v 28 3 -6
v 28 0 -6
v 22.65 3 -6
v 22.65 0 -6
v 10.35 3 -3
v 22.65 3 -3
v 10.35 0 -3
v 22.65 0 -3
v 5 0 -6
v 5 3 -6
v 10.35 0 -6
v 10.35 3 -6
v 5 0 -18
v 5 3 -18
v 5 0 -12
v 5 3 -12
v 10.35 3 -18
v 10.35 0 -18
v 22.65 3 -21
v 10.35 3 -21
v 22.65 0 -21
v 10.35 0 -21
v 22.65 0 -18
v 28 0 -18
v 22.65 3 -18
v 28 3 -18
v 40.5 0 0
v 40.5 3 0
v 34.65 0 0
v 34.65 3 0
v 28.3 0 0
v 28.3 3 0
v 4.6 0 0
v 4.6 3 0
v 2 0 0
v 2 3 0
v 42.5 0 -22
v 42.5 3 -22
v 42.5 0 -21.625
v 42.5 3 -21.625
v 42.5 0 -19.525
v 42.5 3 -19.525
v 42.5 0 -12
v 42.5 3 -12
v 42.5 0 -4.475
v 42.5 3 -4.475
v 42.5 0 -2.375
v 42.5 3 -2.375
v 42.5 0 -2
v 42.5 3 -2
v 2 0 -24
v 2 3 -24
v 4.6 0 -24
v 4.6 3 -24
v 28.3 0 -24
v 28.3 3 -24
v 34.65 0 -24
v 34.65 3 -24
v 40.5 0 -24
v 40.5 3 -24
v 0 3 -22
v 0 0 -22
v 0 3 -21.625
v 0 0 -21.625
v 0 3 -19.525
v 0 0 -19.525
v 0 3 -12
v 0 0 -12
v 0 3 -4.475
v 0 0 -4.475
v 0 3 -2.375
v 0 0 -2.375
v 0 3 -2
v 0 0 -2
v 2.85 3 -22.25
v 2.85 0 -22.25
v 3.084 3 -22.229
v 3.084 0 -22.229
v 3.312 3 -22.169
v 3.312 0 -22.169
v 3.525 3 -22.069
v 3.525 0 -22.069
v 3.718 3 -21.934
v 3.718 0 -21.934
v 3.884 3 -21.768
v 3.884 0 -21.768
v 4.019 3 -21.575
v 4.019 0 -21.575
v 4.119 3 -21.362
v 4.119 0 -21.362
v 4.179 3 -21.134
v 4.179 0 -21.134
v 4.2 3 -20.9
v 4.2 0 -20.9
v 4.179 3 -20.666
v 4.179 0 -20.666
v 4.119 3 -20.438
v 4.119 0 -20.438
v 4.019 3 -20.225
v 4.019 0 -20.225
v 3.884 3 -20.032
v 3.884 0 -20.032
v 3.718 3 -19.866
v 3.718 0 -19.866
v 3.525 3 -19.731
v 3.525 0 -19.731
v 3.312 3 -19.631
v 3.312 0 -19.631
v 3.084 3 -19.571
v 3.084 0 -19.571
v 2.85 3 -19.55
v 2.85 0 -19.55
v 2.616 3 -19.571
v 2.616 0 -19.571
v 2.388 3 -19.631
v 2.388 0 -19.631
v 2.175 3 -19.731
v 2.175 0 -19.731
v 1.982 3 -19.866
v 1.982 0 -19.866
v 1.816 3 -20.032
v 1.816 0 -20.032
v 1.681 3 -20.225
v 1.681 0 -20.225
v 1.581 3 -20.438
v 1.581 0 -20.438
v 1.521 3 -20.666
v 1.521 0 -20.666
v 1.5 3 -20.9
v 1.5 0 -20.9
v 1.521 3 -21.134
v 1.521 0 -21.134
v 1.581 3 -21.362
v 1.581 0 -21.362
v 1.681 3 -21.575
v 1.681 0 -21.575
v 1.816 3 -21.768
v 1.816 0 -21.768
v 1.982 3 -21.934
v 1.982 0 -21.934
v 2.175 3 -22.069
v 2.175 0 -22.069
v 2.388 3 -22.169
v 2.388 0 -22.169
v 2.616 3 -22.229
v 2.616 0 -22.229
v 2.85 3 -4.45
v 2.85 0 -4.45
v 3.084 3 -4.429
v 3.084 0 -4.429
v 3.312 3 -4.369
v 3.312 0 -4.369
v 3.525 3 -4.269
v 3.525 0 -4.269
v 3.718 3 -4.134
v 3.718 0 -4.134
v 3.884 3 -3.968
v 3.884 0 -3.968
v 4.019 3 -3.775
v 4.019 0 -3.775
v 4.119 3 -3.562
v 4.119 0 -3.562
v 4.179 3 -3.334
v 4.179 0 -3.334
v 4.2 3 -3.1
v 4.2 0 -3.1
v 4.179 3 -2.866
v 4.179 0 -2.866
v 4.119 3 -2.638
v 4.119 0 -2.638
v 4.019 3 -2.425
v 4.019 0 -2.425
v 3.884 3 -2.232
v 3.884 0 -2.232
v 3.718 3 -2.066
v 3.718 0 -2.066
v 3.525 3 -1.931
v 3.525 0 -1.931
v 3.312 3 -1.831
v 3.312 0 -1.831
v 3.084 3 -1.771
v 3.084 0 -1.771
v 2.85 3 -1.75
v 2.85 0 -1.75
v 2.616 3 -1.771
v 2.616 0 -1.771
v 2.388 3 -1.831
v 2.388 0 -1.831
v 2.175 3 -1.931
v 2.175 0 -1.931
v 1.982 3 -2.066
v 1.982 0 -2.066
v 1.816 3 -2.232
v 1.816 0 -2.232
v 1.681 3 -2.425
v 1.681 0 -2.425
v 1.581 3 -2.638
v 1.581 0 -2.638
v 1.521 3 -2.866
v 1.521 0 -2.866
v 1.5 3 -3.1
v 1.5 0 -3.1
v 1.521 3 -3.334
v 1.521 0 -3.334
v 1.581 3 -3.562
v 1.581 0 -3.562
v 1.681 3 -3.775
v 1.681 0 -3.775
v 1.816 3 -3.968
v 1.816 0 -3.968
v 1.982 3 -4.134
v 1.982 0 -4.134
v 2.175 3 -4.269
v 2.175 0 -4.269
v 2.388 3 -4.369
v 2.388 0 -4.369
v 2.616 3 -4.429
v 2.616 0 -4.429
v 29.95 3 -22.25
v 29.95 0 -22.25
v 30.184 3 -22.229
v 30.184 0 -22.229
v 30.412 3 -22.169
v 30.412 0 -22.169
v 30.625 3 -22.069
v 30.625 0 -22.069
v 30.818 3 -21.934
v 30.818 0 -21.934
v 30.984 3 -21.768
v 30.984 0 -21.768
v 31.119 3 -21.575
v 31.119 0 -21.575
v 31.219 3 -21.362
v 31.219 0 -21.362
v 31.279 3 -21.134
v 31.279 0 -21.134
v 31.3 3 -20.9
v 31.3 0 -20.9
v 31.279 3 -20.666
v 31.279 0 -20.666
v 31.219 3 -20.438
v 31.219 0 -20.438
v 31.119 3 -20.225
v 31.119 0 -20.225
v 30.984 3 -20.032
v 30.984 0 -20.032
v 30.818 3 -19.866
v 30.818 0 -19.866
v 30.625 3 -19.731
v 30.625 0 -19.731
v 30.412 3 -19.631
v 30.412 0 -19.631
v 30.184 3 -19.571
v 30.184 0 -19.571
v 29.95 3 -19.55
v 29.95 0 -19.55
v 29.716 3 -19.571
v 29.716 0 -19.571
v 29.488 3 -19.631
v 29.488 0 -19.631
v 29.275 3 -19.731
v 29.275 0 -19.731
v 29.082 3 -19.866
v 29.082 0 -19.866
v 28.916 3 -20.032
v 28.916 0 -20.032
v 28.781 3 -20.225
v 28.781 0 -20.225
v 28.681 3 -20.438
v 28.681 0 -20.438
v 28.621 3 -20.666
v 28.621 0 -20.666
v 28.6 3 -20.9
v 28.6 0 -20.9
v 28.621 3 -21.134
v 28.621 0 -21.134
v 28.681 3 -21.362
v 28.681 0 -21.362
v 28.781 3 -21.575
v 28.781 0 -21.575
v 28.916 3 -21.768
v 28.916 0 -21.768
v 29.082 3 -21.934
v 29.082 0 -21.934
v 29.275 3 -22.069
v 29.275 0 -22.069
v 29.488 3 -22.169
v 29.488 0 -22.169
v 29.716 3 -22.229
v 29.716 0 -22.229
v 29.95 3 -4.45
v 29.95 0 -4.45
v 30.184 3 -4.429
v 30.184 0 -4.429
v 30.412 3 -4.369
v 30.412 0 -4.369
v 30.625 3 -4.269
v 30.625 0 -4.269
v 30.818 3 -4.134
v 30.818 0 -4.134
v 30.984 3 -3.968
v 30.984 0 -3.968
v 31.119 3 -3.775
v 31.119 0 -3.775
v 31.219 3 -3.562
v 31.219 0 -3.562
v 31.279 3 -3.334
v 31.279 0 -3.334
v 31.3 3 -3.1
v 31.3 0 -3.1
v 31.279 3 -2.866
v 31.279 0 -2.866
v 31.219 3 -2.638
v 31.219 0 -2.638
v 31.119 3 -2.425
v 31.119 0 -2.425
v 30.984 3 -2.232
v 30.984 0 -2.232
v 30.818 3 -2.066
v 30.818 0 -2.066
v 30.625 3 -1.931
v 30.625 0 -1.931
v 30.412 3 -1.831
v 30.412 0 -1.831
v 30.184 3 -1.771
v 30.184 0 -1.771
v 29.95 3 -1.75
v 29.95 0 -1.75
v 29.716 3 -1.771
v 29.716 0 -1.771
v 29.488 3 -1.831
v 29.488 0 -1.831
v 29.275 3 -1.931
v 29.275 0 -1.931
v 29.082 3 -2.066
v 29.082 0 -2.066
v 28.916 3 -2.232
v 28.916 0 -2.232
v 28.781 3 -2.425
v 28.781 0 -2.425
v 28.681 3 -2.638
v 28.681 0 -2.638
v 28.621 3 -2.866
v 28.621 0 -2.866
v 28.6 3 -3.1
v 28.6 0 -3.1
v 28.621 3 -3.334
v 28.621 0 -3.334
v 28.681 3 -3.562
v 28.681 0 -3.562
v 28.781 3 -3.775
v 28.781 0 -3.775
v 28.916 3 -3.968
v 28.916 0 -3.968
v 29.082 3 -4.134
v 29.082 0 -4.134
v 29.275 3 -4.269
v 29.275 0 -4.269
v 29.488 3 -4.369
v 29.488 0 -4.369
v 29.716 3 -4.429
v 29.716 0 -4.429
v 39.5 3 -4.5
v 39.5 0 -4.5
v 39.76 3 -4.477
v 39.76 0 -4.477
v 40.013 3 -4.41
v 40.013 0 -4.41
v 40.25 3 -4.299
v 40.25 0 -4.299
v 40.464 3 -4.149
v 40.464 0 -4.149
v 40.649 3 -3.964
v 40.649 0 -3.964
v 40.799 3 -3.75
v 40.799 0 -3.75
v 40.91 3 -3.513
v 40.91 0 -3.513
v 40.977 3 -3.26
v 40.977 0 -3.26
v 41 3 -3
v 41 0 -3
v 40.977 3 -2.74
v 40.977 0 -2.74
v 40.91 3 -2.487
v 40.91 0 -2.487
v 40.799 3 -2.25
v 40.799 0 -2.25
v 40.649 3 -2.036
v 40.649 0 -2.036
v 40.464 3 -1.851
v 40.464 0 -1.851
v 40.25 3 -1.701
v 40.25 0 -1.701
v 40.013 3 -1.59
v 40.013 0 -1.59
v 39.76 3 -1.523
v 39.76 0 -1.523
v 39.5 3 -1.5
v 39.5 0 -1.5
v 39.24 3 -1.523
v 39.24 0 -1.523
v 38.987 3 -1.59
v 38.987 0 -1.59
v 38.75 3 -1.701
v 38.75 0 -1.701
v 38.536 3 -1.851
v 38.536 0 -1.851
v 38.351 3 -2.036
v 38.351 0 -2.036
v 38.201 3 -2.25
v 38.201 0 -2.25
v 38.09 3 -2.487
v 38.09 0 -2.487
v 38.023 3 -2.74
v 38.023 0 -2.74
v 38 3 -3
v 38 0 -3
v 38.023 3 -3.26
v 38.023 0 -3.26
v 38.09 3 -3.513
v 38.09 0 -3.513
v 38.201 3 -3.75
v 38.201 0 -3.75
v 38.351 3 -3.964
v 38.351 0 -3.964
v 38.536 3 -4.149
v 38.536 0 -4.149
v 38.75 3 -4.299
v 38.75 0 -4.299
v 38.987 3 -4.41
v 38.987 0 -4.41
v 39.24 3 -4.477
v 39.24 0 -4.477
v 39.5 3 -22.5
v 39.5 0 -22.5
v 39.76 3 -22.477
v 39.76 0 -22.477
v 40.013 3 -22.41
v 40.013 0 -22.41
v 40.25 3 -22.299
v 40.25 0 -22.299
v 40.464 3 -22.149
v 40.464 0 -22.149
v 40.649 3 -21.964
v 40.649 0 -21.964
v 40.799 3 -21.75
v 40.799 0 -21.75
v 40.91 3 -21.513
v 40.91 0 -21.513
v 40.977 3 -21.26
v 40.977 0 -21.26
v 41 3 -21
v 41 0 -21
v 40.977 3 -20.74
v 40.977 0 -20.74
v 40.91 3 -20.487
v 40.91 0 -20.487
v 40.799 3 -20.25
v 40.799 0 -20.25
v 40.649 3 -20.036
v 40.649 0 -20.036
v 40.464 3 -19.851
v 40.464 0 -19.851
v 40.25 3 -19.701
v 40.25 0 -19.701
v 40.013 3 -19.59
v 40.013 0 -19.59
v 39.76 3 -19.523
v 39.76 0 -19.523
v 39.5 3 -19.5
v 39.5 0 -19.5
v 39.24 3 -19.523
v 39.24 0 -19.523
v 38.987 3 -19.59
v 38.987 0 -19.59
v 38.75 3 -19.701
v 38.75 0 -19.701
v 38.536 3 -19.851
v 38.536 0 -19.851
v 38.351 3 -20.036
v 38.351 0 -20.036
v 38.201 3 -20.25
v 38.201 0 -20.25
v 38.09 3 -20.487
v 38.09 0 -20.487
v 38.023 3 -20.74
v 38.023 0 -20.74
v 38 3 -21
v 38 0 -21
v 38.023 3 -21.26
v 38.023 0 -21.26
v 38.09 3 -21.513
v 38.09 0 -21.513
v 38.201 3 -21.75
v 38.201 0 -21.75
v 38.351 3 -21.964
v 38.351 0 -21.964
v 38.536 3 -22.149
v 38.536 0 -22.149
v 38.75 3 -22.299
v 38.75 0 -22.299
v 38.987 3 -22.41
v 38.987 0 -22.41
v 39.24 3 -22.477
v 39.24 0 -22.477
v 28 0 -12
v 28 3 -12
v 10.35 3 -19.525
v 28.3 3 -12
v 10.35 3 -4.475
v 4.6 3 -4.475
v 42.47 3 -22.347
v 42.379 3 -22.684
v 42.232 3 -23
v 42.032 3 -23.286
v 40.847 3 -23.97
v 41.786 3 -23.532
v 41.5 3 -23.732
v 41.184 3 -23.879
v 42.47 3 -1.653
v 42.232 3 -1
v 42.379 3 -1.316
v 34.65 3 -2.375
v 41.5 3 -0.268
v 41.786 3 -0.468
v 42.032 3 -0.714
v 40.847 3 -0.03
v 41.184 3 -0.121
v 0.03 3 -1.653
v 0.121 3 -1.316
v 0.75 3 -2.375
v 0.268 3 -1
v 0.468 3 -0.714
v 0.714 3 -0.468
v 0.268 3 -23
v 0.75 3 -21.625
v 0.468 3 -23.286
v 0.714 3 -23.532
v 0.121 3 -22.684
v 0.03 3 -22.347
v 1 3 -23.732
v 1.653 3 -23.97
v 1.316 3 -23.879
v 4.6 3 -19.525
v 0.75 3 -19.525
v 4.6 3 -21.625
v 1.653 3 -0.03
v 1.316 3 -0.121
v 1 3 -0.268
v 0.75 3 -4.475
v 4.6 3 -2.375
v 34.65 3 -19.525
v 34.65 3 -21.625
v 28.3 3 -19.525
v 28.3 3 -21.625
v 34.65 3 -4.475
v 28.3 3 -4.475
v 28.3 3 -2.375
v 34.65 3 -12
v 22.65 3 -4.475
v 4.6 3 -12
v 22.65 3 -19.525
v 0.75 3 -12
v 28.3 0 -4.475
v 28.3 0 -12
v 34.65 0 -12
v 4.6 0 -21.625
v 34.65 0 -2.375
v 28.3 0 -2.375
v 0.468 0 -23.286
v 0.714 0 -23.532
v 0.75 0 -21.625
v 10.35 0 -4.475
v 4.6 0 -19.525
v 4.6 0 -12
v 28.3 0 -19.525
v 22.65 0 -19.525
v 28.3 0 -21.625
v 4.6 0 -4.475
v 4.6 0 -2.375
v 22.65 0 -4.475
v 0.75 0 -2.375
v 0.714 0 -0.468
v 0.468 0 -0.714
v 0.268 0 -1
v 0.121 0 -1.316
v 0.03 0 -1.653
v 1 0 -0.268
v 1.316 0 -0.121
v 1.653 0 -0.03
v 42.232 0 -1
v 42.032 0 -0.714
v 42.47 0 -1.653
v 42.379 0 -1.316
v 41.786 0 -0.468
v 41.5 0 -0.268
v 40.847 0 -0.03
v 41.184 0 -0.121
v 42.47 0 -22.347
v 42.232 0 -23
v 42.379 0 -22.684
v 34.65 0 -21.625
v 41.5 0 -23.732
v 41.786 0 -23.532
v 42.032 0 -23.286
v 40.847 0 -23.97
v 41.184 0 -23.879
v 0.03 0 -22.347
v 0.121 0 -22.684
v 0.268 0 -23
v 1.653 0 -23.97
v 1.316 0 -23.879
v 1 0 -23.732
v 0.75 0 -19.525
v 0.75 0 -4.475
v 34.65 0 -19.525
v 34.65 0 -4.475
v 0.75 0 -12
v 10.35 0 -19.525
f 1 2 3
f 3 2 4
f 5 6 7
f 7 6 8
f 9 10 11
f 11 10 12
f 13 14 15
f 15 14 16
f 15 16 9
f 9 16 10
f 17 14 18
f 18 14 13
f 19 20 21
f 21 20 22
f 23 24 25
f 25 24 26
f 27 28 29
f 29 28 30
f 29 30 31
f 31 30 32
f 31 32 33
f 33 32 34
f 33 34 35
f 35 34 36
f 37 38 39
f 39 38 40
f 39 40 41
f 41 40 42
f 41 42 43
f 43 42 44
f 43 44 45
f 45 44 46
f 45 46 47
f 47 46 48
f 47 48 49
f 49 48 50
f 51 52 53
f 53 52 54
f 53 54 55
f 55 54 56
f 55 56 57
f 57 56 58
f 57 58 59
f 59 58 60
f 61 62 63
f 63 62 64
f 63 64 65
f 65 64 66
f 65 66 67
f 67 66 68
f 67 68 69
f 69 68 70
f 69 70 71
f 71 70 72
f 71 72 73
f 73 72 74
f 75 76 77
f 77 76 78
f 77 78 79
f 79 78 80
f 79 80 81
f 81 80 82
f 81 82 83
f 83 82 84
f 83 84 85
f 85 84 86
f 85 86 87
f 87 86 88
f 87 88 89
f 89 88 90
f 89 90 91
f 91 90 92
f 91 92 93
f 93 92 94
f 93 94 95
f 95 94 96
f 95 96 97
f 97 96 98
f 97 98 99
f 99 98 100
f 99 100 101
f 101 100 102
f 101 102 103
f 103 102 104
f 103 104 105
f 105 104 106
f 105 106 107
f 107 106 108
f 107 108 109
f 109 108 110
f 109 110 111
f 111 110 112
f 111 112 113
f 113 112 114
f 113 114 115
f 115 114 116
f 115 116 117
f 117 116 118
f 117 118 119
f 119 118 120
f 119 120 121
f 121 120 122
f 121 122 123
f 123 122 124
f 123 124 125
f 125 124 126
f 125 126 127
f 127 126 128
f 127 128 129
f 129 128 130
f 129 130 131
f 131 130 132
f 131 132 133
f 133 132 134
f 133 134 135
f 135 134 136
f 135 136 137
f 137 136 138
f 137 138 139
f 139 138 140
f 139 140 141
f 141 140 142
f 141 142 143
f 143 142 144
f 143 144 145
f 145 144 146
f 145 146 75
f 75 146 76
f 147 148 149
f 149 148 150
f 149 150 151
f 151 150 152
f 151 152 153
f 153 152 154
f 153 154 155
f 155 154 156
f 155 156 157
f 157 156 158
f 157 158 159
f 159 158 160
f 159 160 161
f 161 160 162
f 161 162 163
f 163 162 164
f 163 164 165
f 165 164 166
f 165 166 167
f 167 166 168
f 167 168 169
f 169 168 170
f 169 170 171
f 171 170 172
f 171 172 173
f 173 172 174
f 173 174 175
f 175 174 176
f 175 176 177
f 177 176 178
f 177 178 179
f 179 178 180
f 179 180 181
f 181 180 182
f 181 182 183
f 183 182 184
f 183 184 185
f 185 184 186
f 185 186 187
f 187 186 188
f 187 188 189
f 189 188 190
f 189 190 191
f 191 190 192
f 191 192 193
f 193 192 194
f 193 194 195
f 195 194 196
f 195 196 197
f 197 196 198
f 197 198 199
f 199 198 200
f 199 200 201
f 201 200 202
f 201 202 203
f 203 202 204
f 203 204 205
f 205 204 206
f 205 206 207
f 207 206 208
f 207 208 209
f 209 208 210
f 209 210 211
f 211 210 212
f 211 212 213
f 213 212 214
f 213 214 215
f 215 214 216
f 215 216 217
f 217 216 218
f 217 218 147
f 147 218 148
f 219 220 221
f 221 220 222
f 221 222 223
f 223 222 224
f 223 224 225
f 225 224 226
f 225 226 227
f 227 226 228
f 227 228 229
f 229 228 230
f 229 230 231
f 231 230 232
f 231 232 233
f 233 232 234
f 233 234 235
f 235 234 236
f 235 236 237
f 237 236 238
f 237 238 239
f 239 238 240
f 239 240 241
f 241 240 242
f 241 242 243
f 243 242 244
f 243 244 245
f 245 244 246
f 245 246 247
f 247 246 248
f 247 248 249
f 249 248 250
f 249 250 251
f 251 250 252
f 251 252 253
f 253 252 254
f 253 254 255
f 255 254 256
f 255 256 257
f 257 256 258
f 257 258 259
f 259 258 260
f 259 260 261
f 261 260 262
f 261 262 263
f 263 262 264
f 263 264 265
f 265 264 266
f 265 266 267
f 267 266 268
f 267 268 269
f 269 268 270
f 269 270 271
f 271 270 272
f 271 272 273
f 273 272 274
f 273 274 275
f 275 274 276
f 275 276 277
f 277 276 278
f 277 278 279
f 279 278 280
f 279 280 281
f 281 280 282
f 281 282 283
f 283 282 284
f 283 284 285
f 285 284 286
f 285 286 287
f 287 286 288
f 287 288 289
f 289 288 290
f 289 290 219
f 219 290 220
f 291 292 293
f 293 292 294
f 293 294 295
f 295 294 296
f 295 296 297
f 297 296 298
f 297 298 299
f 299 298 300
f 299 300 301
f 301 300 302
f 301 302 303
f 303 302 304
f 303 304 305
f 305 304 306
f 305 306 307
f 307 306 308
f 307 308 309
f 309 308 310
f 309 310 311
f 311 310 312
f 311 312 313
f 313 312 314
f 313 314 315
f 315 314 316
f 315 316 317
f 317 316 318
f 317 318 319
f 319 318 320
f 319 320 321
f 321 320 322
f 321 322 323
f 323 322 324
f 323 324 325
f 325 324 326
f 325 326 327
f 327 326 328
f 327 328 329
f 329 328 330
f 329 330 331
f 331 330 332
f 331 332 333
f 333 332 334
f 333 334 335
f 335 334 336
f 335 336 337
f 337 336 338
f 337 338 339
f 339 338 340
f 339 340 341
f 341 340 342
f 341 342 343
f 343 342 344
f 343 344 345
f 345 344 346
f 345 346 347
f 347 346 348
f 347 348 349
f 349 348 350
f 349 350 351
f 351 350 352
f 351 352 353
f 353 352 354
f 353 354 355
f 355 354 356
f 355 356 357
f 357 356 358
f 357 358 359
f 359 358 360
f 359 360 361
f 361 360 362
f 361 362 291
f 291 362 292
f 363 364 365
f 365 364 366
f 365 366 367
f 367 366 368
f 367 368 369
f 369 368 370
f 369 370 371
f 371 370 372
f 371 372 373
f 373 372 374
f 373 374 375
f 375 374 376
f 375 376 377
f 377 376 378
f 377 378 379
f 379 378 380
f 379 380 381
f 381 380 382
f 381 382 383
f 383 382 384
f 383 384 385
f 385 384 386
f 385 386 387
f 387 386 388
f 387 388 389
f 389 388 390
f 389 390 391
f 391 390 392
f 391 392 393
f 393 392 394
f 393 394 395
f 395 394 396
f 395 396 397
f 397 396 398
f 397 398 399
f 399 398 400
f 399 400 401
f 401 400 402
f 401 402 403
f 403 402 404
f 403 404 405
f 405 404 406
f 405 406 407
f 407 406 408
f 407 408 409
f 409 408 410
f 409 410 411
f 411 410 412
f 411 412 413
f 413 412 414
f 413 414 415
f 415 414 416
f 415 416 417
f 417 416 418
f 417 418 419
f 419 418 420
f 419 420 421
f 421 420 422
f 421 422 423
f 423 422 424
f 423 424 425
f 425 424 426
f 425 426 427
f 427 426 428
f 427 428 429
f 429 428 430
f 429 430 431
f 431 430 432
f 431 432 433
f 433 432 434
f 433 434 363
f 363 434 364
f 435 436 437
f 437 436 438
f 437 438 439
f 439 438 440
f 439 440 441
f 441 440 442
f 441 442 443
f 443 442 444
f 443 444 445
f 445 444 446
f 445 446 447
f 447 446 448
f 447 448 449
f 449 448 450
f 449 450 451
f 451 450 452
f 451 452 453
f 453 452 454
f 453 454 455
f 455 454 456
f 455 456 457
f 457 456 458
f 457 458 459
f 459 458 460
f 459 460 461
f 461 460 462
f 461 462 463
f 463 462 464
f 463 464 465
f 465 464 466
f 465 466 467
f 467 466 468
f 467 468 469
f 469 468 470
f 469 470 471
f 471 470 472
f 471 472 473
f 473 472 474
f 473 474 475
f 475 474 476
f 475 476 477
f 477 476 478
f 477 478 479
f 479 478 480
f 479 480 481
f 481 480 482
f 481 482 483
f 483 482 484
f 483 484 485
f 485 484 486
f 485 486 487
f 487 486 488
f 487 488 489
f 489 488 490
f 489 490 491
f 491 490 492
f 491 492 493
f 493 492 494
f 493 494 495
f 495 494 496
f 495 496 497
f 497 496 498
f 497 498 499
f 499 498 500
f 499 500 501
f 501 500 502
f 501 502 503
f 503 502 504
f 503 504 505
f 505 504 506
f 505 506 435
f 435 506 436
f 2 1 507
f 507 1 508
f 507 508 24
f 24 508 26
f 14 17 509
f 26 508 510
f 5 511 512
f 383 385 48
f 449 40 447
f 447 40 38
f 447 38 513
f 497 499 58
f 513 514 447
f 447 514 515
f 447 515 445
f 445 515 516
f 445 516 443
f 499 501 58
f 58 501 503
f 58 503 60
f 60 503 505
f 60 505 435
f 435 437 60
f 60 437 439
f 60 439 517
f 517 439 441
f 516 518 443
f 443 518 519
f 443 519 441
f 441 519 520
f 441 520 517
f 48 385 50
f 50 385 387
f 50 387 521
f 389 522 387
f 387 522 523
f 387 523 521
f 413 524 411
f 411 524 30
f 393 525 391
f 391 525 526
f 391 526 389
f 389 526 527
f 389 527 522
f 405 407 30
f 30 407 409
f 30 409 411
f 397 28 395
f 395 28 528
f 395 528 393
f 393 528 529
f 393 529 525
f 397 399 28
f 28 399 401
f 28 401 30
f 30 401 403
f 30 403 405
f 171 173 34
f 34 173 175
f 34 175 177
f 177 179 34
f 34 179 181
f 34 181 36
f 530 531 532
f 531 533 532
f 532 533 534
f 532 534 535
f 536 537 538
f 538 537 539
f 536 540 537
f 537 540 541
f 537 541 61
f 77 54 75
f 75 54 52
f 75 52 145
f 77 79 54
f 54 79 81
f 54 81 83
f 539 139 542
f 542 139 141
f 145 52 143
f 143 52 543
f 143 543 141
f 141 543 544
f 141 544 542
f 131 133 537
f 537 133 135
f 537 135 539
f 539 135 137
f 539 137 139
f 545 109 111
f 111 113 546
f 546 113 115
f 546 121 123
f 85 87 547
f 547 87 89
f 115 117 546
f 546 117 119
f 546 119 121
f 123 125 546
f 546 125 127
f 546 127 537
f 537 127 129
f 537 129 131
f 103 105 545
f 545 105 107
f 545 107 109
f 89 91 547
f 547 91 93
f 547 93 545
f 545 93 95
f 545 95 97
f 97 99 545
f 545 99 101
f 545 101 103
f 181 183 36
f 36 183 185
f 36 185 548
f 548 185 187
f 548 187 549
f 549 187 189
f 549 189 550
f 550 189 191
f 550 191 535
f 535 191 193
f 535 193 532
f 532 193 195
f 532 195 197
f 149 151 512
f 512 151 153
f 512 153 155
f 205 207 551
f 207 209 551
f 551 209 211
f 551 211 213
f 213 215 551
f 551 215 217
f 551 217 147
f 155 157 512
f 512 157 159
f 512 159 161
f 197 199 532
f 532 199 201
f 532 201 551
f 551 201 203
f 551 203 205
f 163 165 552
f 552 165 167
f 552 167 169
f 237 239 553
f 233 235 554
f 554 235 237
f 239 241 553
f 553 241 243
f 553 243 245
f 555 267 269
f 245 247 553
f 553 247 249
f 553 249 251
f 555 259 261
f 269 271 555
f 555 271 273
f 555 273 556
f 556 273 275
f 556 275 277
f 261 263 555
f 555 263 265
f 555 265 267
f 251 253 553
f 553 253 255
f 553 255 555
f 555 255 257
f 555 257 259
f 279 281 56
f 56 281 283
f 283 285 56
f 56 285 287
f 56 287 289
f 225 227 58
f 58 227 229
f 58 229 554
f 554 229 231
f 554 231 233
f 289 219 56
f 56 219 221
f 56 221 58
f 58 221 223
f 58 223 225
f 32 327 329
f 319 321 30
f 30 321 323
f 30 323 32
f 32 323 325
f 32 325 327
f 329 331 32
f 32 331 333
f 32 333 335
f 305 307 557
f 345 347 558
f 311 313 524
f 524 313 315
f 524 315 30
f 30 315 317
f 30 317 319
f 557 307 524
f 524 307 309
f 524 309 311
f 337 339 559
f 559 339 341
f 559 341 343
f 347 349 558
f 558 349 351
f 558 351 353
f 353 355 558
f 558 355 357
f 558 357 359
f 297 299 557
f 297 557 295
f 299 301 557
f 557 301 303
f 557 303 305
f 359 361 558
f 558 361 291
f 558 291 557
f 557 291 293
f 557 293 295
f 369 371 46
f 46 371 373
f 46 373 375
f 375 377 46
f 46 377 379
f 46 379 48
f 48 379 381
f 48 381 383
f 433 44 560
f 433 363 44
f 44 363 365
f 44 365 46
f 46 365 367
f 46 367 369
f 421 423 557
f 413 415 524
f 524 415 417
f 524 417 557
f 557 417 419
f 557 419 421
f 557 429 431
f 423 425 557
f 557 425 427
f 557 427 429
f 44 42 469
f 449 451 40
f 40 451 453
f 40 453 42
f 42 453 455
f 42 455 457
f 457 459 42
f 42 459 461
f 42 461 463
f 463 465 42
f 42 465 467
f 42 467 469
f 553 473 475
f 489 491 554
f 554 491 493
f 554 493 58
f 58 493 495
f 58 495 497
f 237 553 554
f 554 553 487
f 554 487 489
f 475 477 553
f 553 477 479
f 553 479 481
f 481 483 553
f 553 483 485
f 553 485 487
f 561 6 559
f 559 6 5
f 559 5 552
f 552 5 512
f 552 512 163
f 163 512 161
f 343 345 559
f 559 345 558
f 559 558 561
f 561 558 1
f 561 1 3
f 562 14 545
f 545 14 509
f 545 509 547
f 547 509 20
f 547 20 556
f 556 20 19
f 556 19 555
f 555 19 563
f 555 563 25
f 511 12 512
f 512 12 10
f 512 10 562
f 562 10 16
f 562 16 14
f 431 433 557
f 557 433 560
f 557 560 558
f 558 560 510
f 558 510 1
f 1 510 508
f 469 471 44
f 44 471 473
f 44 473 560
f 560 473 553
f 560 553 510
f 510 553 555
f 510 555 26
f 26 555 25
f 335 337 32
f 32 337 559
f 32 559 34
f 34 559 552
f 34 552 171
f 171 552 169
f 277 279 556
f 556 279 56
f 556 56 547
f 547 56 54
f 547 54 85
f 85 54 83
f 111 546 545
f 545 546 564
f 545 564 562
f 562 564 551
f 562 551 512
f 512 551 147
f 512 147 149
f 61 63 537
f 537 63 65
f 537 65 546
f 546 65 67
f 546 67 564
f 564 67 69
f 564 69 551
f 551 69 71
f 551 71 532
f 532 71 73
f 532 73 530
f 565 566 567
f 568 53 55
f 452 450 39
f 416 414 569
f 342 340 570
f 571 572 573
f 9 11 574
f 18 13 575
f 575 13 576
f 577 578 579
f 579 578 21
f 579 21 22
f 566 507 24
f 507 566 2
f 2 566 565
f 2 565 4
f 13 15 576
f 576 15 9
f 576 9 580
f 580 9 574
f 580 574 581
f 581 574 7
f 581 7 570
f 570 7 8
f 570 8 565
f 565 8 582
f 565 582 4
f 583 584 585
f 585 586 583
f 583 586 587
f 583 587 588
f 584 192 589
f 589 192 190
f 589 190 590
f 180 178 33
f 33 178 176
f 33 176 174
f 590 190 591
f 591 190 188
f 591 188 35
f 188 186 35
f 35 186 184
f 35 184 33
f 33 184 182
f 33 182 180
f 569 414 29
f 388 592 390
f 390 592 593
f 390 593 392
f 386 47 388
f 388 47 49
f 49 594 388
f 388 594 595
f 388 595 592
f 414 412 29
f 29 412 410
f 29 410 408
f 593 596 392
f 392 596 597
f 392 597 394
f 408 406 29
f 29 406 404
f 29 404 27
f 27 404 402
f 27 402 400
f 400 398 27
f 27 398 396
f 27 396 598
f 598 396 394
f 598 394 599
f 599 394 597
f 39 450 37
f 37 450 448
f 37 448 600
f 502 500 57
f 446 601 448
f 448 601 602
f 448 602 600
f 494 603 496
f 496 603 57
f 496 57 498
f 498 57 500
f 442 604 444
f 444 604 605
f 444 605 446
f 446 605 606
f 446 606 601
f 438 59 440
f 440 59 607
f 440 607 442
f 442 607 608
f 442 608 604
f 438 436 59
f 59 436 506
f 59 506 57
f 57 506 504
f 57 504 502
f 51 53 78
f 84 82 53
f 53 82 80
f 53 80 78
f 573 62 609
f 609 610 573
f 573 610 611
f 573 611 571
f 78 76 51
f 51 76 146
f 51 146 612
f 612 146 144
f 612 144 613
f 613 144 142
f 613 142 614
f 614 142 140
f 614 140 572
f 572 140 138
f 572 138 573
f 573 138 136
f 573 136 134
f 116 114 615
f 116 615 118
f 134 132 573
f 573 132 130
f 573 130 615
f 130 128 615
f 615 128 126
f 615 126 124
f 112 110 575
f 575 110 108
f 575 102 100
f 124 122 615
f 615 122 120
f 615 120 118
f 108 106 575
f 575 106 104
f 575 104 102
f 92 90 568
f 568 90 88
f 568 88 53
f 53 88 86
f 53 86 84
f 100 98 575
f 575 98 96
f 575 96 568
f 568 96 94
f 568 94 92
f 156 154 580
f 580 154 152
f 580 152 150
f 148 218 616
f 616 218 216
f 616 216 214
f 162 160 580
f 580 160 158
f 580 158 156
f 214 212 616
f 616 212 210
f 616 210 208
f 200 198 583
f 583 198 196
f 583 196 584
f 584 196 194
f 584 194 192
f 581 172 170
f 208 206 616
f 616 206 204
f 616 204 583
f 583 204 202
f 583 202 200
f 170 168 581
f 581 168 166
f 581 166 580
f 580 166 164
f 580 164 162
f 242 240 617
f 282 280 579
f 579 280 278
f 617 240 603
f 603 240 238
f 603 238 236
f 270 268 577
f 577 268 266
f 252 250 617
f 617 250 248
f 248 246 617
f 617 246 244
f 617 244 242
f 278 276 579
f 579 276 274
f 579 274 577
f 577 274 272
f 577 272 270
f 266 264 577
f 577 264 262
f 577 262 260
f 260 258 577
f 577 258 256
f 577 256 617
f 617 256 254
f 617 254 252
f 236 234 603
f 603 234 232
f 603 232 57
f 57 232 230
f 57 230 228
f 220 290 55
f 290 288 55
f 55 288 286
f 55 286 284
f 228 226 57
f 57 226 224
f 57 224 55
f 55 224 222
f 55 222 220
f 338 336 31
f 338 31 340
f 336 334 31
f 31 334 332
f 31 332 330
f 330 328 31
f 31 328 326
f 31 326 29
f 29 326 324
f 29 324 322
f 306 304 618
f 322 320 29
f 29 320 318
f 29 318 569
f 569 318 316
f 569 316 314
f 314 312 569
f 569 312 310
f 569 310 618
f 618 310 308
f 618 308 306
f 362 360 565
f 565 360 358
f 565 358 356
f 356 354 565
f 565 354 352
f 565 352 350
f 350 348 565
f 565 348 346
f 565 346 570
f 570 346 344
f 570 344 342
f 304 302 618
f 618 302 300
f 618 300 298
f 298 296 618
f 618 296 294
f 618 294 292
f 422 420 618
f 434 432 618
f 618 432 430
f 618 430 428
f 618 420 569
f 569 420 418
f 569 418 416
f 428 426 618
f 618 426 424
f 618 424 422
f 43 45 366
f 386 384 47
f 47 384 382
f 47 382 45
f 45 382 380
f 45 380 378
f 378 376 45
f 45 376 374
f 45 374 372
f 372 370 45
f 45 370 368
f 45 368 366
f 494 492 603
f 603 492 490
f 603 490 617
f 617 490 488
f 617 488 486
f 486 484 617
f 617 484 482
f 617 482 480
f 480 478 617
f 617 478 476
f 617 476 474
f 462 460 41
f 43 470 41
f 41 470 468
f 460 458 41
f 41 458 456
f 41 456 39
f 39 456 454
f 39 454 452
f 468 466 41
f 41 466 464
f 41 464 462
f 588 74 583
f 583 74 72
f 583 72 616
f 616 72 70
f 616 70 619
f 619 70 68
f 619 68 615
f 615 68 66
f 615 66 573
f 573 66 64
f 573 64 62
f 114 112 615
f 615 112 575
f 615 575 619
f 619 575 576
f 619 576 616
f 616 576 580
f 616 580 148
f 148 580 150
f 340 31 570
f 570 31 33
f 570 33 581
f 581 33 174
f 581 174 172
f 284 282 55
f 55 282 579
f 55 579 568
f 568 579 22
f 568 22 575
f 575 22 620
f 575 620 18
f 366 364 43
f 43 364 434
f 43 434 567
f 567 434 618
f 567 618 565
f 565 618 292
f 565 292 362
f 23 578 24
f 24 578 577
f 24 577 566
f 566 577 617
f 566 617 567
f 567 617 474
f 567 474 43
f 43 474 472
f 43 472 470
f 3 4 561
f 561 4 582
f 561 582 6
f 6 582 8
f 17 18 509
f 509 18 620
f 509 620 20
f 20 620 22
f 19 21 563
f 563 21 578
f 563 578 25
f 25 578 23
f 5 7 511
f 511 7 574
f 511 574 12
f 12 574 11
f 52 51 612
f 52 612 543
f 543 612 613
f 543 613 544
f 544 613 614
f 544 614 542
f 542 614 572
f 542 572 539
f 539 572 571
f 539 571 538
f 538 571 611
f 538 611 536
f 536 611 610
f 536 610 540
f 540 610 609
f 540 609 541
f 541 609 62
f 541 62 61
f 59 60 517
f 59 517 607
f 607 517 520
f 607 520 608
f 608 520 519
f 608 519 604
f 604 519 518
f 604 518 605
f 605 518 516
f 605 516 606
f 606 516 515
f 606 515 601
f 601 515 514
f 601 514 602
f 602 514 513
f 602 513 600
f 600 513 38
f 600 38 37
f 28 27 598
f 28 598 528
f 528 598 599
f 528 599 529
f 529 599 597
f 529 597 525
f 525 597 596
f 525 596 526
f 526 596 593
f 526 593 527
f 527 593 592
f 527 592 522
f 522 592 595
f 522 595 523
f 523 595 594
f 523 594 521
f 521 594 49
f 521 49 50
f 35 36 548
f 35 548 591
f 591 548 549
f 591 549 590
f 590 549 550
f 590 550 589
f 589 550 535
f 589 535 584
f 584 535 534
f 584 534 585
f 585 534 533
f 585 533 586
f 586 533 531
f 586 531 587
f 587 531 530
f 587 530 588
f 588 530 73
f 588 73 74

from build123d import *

# Parameters (mm, degrees)
SKETCH1_W           = 42.5
SKETCH1_H           = 24
SKETCH1_R           = 1.35
SKETCH1_R_2         = 1.5
BOSS_EXTRUDE1_DEPTH = 3
SKETCH2_W           = 0.15
SKETCH2_H           = 3
CUT_EXTRUDE1_DEPTH  = 4
FILLET1_R           = 2


with BuildPart() as part:
    # Sketch1 → Boss-Extrude1 (new body)
    with BuildSketch(Plane(origin=(0, 0, 0), x_dir=(1, 0, 0), z_dir=(0, 1, 0))):
        with Locations((21.25, 12)):
            Rectangle(SKETCH1_W, SKETCH1_H)
        with Locations((2.85, 3.1)):
            Circle(SKETCH1_R, mode=Mode.SUBTRACT)
        with Locations((29.95, 3.1)):
            Circle(SKETCH1_R, mode=Mode.SUBTRACT)
        with Locations((39.5, 3)):
            Circle(SKETCH1_R_2, mode=Mode.SUBTRACT)
        Polygon((5, 6), (5, 18), (10.5, 18), (10.5, 21), (22.5, 21), (22.5, 18), (28, 18), (28, 6), (22.5, 6), (22.5, 3), (10.5, 3), (10.5, 6), align=None, mode=Mode.SUBTRACT)
        with Locations((2.85, 20.9)):
            Circle(SKETCH1_R, mode=Mode.SUBTRACT)
        with Locations((29.95, 20.9)):
            Circle(SKETCH1_R, mode=Mode.SUBTRACT)
        with Locations((39.5, 21)):
            Circle(SKETCH1_R_2, mode=Mode.SUBTRACT)
    extrude(amount=BOSS_EXTRUDE1_DEPTH)

    # Sketch2 → Cut-Extrude1 (cut, through all)
    with BuildSketch(Plane(origin=(0, 3, 0), x_dir=(1, 0, 0), z_dir=(0, 1, 0))):
        with Locations((22.575, 4.5)):
            Rectangle(SKETCH2_W, SKETCH2_H)
        with Locations((10.425, 4.5)):
            Rectangle(SKETCH2_W, SKETCH2_H)
        with Locations((22.575, 19.5)):
            Rectangle(SKETCH2_W, SKETCH2_H)
        with Locations((10.425, 19.5)):
            Rectangle(SKETCH2_W, SKETCH2_H)
    extrude(amount=-CUT_EXTRUDE1_DEPTH, mode=Mode.SUBTRACT)

    # Fillet1
    fillet1_edges = [part.edges().sort_by_distance(p)[0] for p in [
        (0, 1.5, 0),
        (0, 1.5, -24),
        (42.5, 1.5, -24),
        (42.5, 1.5, 0),
    ]]
    fillet(fillet1_edges, radius=FILLET1_R)


solid = part.part
